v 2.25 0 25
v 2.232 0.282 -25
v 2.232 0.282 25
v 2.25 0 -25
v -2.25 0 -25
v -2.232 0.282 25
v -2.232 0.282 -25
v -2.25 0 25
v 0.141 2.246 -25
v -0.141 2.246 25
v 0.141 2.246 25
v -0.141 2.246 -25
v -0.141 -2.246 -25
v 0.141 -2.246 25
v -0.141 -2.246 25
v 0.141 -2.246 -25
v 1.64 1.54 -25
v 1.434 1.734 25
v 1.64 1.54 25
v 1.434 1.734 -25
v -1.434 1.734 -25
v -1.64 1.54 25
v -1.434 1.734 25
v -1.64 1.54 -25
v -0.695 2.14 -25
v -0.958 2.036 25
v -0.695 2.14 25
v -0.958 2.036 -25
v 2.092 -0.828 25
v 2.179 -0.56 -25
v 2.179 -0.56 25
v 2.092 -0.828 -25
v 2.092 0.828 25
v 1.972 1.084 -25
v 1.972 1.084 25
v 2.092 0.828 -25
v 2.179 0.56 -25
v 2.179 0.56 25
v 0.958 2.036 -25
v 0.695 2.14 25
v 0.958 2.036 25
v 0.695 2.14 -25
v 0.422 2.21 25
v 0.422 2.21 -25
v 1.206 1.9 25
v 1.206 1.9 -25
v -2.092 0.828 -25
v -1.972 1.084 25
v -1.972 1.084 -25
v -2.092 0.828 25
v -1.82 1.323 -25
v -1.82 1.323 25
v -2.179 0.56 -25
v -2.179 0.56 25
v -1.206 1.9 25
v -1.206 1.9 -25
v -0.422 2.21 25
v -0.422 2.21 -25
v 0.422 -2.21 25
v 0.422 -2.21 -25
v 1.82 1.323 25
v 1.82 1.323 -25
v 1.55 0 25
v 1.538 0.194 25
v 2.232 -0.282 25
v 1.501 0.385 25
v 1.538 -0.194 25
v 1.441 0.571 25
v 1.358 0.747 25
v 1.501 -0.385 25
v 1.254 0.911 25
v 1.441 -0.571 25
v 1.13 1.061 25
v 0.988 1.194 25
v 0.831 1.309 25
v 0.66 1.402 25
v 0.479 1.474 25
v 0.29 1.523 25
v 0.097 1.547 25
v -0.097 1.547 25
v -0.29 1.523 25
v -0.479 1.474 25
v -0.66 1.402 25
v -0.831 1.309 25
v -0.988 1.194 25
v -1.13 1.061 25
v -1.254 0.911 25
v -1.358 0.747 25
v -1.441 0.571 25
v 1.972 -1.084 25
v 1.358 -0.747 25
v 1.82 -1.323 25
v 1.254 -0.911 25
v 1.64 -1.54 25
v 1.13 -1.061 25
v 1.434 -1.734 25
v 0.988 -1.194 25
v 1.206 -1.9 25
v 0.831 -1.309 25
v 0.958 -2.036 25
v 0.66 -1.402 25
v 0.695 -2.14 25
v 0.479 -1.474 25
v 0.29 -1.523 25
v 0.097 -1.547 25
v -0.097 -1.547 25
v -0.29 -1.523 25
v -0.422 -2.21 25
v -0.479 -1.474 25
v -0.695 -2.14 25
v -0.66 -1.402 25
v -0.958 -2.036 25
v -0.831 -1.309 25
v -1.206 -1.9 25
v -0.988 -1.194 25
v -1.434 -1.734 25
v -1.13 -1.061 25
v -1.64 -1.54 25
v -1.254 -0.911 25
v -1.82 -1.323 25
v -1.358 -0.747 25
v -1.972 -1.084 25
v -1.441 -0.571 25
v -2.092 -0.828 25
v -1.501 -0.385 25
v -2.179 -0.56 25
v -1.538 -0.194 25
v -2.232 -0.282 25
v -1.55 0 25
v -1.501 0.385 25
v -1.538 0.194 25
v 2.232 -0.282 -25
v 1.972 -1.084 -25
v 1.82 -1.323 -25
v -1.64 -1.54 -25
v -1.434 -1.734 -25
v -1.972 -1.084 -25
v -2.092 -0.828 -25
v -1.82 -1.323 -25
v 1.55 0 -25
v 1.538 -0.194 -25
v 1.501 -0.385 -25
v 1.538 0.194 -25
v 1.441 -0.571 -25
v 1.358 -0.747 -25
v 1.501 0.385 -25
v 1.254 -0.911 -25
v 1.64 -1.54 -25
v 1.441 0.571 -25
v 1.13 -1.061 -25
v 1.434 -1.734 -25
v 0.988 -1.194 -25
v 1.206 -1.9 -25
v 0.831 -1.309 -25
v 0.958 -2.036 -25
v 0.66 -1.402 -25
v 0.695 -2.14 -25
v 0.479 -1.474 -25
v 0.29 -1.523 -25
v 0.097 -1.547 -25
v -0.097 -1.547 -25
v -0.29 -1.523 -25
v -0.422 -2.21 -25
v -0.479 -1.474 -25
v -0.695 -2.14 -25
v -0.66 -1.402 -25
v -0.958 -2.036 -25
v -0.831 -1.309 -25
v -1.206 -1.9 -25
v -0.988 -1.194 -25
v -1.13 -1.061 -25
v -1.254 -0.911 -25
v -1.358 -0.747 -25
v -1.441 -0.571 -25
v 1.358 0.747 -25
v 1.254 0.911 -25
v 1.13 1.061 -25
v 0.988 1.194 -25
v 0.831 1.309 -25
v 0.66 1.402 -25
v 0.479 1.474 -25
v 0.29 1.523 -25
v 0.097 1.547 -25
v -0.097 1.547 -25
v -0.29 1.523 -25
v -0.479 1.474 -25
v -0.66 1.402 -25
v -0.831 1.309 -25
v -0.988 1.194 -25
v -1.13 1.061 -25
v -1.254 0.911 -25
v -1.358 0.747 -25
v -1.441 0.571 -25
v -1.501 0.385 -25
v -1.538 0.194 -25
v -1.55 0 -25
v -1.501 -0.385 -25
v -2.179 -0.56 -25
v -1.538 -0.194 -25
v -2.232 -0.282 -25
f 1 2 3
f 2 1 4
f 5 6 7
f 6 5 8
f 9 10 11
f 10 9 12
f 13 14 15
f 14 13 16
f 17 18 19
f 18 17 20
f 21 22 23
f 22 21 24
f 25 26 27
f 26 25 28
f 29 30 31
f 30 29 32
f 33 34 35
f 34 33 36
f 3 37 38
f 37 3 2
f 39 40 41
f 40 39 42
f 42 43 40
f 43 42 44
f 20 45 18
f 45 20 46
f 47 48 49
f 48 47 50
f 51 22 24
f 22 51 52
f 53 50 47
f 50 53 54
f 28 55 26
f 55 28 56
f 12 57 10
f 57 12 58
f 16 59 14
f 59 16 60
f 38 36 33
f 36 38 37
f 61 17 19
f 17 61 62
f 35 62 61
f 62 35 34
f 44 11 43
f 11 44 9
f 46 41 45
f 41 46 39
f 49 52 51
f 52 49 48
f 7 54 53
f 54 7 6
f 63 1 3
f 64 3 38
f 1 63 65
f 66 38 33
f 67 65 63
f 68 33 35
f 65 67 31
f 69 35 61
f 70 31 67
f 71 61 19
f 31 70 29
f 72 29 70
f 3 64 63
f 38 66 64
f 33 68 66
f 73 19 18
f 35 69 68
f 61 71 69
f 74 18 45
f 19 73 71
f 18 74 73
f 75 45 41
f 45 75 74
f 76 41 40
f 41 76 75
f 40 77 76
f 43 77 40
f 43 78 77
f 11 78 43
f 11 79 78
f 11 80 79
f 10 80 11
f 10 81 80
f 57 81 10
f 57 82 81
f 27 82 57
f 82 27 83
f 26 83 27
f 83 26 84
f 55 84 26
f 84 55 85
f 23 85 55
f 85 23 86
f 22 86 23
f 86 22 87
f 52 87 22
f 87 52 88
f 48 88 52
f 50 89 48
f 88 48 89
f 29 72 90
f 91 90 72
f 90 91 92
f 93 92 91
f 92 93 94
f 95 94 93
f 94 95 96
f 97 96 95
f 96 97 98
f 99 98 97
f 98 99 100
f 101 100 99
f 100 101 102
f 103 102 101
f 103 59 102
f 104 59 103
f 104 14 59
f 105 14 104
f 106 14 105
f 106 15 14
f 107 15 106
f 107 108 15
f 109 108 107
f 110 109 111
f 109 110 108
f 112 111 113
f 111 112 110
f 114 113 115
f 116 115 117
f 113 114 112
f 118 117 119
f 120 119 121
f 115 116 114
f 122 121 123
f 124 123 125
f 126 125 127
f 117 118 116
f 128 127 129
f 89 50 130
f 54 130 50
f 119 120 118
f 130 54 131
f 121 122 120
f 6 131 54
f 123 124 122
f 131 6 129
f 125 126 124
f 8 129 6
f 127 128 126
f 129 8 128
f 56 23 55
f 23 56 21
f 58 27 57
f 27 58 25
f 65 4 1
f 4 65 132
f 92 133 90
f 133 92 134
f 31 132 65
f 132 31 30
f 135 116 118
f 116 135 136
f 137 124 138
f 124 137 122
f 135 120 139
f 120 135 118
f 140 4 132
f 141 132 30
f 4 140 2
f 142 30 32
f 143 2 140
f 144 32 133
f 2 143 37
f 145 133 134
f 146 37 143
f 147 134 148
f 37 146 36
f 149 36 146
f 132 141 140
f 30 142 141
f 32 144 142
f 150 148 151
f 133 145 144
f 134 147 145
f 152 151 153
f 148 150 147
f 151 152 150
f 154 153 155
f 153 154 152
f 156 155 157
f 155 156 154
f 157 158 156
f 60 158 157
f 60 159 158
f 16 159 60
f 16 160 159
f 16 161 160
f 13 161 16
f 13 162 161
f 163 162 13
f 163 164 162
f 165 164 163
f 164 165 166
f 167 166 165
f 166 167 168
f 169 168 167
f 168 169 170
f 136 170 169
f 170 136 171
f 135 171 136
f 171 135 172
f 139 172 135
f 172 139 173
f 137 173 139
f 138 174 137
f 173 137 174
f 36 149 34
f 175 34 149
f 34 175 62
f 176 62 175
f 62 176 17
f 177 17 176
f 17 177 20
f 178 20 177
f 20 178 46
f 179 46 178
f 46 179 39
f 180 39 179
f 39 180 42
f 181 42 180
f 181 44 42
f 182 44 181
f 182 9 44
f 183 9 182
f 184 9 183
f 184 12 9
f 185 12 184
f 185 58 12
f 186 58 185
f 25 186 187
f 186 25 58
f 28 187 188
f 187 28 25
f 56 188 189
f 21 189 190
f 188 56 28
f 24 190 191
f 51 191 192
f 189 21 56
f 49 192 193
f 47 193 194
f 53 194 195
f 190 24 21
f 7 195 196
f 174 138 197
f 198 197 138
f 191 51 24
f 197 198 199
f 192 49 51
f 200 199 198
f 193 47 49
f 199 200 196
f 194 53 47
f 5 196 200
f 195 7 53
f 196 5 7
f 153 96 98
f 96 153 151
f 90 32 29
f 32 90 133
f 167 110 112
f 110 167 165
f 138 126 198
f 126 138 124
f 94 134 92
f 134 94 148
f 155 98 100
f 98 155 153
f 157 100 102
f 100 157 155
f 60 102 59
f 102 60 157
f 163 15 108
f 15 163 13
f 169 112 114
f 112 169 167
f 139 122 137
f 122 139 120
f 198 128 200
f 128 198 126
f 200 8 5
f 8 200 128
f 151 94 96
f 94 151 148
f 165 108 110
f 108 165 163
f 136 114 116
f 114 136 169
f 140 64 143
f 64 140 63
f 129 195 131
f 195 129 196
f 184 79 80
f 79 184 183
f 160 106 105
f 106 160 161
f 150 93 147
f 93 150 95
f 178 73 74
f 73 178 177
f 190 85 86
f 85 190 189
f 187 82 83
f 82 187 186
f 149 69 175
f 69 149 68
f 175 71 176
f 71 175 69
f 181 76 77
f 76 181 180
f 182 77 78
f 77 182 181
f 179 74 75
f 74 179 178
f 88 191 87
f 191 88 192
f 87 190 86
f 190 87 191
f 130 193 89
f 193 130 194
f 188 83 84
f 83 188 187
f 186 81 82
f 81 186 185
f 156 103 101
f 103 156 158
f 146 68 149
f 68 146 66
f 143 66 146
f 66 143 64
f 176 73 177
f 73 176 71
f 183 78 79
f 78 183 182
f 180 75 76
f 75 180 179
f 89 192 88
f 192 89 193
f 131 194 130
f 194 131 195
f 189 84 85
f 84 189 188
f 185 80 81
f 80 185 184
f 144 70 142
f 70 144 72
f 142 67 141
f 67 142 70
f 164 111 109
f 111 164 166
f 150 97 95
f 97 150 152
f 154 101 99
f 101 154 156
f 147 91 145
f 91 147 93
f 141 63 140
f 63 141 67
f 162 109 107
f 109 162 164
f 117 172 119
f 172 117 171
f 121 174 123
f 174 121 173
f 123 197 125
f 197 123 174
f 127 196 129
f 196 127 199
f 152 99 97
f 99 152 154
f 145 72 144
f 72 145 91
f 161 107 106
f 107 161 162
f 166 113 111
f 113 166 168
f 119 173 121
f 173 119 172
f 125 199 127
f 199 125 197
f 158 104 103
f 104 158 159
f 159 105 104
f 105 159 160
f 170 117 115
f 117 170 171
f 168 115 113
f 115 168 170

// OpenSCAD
$fn = 50;


difference() {
	union() {
		translate(v = [0, 0, -25.0000000000]) {
			cylinder(h = 50, r = 2.2500000000);
		}
	}
	union() {
		translate(v = [0, 0, -100.0000000000]) {
			cylinder(h = 200, r = 1.5500000000);
		}
	}
}
